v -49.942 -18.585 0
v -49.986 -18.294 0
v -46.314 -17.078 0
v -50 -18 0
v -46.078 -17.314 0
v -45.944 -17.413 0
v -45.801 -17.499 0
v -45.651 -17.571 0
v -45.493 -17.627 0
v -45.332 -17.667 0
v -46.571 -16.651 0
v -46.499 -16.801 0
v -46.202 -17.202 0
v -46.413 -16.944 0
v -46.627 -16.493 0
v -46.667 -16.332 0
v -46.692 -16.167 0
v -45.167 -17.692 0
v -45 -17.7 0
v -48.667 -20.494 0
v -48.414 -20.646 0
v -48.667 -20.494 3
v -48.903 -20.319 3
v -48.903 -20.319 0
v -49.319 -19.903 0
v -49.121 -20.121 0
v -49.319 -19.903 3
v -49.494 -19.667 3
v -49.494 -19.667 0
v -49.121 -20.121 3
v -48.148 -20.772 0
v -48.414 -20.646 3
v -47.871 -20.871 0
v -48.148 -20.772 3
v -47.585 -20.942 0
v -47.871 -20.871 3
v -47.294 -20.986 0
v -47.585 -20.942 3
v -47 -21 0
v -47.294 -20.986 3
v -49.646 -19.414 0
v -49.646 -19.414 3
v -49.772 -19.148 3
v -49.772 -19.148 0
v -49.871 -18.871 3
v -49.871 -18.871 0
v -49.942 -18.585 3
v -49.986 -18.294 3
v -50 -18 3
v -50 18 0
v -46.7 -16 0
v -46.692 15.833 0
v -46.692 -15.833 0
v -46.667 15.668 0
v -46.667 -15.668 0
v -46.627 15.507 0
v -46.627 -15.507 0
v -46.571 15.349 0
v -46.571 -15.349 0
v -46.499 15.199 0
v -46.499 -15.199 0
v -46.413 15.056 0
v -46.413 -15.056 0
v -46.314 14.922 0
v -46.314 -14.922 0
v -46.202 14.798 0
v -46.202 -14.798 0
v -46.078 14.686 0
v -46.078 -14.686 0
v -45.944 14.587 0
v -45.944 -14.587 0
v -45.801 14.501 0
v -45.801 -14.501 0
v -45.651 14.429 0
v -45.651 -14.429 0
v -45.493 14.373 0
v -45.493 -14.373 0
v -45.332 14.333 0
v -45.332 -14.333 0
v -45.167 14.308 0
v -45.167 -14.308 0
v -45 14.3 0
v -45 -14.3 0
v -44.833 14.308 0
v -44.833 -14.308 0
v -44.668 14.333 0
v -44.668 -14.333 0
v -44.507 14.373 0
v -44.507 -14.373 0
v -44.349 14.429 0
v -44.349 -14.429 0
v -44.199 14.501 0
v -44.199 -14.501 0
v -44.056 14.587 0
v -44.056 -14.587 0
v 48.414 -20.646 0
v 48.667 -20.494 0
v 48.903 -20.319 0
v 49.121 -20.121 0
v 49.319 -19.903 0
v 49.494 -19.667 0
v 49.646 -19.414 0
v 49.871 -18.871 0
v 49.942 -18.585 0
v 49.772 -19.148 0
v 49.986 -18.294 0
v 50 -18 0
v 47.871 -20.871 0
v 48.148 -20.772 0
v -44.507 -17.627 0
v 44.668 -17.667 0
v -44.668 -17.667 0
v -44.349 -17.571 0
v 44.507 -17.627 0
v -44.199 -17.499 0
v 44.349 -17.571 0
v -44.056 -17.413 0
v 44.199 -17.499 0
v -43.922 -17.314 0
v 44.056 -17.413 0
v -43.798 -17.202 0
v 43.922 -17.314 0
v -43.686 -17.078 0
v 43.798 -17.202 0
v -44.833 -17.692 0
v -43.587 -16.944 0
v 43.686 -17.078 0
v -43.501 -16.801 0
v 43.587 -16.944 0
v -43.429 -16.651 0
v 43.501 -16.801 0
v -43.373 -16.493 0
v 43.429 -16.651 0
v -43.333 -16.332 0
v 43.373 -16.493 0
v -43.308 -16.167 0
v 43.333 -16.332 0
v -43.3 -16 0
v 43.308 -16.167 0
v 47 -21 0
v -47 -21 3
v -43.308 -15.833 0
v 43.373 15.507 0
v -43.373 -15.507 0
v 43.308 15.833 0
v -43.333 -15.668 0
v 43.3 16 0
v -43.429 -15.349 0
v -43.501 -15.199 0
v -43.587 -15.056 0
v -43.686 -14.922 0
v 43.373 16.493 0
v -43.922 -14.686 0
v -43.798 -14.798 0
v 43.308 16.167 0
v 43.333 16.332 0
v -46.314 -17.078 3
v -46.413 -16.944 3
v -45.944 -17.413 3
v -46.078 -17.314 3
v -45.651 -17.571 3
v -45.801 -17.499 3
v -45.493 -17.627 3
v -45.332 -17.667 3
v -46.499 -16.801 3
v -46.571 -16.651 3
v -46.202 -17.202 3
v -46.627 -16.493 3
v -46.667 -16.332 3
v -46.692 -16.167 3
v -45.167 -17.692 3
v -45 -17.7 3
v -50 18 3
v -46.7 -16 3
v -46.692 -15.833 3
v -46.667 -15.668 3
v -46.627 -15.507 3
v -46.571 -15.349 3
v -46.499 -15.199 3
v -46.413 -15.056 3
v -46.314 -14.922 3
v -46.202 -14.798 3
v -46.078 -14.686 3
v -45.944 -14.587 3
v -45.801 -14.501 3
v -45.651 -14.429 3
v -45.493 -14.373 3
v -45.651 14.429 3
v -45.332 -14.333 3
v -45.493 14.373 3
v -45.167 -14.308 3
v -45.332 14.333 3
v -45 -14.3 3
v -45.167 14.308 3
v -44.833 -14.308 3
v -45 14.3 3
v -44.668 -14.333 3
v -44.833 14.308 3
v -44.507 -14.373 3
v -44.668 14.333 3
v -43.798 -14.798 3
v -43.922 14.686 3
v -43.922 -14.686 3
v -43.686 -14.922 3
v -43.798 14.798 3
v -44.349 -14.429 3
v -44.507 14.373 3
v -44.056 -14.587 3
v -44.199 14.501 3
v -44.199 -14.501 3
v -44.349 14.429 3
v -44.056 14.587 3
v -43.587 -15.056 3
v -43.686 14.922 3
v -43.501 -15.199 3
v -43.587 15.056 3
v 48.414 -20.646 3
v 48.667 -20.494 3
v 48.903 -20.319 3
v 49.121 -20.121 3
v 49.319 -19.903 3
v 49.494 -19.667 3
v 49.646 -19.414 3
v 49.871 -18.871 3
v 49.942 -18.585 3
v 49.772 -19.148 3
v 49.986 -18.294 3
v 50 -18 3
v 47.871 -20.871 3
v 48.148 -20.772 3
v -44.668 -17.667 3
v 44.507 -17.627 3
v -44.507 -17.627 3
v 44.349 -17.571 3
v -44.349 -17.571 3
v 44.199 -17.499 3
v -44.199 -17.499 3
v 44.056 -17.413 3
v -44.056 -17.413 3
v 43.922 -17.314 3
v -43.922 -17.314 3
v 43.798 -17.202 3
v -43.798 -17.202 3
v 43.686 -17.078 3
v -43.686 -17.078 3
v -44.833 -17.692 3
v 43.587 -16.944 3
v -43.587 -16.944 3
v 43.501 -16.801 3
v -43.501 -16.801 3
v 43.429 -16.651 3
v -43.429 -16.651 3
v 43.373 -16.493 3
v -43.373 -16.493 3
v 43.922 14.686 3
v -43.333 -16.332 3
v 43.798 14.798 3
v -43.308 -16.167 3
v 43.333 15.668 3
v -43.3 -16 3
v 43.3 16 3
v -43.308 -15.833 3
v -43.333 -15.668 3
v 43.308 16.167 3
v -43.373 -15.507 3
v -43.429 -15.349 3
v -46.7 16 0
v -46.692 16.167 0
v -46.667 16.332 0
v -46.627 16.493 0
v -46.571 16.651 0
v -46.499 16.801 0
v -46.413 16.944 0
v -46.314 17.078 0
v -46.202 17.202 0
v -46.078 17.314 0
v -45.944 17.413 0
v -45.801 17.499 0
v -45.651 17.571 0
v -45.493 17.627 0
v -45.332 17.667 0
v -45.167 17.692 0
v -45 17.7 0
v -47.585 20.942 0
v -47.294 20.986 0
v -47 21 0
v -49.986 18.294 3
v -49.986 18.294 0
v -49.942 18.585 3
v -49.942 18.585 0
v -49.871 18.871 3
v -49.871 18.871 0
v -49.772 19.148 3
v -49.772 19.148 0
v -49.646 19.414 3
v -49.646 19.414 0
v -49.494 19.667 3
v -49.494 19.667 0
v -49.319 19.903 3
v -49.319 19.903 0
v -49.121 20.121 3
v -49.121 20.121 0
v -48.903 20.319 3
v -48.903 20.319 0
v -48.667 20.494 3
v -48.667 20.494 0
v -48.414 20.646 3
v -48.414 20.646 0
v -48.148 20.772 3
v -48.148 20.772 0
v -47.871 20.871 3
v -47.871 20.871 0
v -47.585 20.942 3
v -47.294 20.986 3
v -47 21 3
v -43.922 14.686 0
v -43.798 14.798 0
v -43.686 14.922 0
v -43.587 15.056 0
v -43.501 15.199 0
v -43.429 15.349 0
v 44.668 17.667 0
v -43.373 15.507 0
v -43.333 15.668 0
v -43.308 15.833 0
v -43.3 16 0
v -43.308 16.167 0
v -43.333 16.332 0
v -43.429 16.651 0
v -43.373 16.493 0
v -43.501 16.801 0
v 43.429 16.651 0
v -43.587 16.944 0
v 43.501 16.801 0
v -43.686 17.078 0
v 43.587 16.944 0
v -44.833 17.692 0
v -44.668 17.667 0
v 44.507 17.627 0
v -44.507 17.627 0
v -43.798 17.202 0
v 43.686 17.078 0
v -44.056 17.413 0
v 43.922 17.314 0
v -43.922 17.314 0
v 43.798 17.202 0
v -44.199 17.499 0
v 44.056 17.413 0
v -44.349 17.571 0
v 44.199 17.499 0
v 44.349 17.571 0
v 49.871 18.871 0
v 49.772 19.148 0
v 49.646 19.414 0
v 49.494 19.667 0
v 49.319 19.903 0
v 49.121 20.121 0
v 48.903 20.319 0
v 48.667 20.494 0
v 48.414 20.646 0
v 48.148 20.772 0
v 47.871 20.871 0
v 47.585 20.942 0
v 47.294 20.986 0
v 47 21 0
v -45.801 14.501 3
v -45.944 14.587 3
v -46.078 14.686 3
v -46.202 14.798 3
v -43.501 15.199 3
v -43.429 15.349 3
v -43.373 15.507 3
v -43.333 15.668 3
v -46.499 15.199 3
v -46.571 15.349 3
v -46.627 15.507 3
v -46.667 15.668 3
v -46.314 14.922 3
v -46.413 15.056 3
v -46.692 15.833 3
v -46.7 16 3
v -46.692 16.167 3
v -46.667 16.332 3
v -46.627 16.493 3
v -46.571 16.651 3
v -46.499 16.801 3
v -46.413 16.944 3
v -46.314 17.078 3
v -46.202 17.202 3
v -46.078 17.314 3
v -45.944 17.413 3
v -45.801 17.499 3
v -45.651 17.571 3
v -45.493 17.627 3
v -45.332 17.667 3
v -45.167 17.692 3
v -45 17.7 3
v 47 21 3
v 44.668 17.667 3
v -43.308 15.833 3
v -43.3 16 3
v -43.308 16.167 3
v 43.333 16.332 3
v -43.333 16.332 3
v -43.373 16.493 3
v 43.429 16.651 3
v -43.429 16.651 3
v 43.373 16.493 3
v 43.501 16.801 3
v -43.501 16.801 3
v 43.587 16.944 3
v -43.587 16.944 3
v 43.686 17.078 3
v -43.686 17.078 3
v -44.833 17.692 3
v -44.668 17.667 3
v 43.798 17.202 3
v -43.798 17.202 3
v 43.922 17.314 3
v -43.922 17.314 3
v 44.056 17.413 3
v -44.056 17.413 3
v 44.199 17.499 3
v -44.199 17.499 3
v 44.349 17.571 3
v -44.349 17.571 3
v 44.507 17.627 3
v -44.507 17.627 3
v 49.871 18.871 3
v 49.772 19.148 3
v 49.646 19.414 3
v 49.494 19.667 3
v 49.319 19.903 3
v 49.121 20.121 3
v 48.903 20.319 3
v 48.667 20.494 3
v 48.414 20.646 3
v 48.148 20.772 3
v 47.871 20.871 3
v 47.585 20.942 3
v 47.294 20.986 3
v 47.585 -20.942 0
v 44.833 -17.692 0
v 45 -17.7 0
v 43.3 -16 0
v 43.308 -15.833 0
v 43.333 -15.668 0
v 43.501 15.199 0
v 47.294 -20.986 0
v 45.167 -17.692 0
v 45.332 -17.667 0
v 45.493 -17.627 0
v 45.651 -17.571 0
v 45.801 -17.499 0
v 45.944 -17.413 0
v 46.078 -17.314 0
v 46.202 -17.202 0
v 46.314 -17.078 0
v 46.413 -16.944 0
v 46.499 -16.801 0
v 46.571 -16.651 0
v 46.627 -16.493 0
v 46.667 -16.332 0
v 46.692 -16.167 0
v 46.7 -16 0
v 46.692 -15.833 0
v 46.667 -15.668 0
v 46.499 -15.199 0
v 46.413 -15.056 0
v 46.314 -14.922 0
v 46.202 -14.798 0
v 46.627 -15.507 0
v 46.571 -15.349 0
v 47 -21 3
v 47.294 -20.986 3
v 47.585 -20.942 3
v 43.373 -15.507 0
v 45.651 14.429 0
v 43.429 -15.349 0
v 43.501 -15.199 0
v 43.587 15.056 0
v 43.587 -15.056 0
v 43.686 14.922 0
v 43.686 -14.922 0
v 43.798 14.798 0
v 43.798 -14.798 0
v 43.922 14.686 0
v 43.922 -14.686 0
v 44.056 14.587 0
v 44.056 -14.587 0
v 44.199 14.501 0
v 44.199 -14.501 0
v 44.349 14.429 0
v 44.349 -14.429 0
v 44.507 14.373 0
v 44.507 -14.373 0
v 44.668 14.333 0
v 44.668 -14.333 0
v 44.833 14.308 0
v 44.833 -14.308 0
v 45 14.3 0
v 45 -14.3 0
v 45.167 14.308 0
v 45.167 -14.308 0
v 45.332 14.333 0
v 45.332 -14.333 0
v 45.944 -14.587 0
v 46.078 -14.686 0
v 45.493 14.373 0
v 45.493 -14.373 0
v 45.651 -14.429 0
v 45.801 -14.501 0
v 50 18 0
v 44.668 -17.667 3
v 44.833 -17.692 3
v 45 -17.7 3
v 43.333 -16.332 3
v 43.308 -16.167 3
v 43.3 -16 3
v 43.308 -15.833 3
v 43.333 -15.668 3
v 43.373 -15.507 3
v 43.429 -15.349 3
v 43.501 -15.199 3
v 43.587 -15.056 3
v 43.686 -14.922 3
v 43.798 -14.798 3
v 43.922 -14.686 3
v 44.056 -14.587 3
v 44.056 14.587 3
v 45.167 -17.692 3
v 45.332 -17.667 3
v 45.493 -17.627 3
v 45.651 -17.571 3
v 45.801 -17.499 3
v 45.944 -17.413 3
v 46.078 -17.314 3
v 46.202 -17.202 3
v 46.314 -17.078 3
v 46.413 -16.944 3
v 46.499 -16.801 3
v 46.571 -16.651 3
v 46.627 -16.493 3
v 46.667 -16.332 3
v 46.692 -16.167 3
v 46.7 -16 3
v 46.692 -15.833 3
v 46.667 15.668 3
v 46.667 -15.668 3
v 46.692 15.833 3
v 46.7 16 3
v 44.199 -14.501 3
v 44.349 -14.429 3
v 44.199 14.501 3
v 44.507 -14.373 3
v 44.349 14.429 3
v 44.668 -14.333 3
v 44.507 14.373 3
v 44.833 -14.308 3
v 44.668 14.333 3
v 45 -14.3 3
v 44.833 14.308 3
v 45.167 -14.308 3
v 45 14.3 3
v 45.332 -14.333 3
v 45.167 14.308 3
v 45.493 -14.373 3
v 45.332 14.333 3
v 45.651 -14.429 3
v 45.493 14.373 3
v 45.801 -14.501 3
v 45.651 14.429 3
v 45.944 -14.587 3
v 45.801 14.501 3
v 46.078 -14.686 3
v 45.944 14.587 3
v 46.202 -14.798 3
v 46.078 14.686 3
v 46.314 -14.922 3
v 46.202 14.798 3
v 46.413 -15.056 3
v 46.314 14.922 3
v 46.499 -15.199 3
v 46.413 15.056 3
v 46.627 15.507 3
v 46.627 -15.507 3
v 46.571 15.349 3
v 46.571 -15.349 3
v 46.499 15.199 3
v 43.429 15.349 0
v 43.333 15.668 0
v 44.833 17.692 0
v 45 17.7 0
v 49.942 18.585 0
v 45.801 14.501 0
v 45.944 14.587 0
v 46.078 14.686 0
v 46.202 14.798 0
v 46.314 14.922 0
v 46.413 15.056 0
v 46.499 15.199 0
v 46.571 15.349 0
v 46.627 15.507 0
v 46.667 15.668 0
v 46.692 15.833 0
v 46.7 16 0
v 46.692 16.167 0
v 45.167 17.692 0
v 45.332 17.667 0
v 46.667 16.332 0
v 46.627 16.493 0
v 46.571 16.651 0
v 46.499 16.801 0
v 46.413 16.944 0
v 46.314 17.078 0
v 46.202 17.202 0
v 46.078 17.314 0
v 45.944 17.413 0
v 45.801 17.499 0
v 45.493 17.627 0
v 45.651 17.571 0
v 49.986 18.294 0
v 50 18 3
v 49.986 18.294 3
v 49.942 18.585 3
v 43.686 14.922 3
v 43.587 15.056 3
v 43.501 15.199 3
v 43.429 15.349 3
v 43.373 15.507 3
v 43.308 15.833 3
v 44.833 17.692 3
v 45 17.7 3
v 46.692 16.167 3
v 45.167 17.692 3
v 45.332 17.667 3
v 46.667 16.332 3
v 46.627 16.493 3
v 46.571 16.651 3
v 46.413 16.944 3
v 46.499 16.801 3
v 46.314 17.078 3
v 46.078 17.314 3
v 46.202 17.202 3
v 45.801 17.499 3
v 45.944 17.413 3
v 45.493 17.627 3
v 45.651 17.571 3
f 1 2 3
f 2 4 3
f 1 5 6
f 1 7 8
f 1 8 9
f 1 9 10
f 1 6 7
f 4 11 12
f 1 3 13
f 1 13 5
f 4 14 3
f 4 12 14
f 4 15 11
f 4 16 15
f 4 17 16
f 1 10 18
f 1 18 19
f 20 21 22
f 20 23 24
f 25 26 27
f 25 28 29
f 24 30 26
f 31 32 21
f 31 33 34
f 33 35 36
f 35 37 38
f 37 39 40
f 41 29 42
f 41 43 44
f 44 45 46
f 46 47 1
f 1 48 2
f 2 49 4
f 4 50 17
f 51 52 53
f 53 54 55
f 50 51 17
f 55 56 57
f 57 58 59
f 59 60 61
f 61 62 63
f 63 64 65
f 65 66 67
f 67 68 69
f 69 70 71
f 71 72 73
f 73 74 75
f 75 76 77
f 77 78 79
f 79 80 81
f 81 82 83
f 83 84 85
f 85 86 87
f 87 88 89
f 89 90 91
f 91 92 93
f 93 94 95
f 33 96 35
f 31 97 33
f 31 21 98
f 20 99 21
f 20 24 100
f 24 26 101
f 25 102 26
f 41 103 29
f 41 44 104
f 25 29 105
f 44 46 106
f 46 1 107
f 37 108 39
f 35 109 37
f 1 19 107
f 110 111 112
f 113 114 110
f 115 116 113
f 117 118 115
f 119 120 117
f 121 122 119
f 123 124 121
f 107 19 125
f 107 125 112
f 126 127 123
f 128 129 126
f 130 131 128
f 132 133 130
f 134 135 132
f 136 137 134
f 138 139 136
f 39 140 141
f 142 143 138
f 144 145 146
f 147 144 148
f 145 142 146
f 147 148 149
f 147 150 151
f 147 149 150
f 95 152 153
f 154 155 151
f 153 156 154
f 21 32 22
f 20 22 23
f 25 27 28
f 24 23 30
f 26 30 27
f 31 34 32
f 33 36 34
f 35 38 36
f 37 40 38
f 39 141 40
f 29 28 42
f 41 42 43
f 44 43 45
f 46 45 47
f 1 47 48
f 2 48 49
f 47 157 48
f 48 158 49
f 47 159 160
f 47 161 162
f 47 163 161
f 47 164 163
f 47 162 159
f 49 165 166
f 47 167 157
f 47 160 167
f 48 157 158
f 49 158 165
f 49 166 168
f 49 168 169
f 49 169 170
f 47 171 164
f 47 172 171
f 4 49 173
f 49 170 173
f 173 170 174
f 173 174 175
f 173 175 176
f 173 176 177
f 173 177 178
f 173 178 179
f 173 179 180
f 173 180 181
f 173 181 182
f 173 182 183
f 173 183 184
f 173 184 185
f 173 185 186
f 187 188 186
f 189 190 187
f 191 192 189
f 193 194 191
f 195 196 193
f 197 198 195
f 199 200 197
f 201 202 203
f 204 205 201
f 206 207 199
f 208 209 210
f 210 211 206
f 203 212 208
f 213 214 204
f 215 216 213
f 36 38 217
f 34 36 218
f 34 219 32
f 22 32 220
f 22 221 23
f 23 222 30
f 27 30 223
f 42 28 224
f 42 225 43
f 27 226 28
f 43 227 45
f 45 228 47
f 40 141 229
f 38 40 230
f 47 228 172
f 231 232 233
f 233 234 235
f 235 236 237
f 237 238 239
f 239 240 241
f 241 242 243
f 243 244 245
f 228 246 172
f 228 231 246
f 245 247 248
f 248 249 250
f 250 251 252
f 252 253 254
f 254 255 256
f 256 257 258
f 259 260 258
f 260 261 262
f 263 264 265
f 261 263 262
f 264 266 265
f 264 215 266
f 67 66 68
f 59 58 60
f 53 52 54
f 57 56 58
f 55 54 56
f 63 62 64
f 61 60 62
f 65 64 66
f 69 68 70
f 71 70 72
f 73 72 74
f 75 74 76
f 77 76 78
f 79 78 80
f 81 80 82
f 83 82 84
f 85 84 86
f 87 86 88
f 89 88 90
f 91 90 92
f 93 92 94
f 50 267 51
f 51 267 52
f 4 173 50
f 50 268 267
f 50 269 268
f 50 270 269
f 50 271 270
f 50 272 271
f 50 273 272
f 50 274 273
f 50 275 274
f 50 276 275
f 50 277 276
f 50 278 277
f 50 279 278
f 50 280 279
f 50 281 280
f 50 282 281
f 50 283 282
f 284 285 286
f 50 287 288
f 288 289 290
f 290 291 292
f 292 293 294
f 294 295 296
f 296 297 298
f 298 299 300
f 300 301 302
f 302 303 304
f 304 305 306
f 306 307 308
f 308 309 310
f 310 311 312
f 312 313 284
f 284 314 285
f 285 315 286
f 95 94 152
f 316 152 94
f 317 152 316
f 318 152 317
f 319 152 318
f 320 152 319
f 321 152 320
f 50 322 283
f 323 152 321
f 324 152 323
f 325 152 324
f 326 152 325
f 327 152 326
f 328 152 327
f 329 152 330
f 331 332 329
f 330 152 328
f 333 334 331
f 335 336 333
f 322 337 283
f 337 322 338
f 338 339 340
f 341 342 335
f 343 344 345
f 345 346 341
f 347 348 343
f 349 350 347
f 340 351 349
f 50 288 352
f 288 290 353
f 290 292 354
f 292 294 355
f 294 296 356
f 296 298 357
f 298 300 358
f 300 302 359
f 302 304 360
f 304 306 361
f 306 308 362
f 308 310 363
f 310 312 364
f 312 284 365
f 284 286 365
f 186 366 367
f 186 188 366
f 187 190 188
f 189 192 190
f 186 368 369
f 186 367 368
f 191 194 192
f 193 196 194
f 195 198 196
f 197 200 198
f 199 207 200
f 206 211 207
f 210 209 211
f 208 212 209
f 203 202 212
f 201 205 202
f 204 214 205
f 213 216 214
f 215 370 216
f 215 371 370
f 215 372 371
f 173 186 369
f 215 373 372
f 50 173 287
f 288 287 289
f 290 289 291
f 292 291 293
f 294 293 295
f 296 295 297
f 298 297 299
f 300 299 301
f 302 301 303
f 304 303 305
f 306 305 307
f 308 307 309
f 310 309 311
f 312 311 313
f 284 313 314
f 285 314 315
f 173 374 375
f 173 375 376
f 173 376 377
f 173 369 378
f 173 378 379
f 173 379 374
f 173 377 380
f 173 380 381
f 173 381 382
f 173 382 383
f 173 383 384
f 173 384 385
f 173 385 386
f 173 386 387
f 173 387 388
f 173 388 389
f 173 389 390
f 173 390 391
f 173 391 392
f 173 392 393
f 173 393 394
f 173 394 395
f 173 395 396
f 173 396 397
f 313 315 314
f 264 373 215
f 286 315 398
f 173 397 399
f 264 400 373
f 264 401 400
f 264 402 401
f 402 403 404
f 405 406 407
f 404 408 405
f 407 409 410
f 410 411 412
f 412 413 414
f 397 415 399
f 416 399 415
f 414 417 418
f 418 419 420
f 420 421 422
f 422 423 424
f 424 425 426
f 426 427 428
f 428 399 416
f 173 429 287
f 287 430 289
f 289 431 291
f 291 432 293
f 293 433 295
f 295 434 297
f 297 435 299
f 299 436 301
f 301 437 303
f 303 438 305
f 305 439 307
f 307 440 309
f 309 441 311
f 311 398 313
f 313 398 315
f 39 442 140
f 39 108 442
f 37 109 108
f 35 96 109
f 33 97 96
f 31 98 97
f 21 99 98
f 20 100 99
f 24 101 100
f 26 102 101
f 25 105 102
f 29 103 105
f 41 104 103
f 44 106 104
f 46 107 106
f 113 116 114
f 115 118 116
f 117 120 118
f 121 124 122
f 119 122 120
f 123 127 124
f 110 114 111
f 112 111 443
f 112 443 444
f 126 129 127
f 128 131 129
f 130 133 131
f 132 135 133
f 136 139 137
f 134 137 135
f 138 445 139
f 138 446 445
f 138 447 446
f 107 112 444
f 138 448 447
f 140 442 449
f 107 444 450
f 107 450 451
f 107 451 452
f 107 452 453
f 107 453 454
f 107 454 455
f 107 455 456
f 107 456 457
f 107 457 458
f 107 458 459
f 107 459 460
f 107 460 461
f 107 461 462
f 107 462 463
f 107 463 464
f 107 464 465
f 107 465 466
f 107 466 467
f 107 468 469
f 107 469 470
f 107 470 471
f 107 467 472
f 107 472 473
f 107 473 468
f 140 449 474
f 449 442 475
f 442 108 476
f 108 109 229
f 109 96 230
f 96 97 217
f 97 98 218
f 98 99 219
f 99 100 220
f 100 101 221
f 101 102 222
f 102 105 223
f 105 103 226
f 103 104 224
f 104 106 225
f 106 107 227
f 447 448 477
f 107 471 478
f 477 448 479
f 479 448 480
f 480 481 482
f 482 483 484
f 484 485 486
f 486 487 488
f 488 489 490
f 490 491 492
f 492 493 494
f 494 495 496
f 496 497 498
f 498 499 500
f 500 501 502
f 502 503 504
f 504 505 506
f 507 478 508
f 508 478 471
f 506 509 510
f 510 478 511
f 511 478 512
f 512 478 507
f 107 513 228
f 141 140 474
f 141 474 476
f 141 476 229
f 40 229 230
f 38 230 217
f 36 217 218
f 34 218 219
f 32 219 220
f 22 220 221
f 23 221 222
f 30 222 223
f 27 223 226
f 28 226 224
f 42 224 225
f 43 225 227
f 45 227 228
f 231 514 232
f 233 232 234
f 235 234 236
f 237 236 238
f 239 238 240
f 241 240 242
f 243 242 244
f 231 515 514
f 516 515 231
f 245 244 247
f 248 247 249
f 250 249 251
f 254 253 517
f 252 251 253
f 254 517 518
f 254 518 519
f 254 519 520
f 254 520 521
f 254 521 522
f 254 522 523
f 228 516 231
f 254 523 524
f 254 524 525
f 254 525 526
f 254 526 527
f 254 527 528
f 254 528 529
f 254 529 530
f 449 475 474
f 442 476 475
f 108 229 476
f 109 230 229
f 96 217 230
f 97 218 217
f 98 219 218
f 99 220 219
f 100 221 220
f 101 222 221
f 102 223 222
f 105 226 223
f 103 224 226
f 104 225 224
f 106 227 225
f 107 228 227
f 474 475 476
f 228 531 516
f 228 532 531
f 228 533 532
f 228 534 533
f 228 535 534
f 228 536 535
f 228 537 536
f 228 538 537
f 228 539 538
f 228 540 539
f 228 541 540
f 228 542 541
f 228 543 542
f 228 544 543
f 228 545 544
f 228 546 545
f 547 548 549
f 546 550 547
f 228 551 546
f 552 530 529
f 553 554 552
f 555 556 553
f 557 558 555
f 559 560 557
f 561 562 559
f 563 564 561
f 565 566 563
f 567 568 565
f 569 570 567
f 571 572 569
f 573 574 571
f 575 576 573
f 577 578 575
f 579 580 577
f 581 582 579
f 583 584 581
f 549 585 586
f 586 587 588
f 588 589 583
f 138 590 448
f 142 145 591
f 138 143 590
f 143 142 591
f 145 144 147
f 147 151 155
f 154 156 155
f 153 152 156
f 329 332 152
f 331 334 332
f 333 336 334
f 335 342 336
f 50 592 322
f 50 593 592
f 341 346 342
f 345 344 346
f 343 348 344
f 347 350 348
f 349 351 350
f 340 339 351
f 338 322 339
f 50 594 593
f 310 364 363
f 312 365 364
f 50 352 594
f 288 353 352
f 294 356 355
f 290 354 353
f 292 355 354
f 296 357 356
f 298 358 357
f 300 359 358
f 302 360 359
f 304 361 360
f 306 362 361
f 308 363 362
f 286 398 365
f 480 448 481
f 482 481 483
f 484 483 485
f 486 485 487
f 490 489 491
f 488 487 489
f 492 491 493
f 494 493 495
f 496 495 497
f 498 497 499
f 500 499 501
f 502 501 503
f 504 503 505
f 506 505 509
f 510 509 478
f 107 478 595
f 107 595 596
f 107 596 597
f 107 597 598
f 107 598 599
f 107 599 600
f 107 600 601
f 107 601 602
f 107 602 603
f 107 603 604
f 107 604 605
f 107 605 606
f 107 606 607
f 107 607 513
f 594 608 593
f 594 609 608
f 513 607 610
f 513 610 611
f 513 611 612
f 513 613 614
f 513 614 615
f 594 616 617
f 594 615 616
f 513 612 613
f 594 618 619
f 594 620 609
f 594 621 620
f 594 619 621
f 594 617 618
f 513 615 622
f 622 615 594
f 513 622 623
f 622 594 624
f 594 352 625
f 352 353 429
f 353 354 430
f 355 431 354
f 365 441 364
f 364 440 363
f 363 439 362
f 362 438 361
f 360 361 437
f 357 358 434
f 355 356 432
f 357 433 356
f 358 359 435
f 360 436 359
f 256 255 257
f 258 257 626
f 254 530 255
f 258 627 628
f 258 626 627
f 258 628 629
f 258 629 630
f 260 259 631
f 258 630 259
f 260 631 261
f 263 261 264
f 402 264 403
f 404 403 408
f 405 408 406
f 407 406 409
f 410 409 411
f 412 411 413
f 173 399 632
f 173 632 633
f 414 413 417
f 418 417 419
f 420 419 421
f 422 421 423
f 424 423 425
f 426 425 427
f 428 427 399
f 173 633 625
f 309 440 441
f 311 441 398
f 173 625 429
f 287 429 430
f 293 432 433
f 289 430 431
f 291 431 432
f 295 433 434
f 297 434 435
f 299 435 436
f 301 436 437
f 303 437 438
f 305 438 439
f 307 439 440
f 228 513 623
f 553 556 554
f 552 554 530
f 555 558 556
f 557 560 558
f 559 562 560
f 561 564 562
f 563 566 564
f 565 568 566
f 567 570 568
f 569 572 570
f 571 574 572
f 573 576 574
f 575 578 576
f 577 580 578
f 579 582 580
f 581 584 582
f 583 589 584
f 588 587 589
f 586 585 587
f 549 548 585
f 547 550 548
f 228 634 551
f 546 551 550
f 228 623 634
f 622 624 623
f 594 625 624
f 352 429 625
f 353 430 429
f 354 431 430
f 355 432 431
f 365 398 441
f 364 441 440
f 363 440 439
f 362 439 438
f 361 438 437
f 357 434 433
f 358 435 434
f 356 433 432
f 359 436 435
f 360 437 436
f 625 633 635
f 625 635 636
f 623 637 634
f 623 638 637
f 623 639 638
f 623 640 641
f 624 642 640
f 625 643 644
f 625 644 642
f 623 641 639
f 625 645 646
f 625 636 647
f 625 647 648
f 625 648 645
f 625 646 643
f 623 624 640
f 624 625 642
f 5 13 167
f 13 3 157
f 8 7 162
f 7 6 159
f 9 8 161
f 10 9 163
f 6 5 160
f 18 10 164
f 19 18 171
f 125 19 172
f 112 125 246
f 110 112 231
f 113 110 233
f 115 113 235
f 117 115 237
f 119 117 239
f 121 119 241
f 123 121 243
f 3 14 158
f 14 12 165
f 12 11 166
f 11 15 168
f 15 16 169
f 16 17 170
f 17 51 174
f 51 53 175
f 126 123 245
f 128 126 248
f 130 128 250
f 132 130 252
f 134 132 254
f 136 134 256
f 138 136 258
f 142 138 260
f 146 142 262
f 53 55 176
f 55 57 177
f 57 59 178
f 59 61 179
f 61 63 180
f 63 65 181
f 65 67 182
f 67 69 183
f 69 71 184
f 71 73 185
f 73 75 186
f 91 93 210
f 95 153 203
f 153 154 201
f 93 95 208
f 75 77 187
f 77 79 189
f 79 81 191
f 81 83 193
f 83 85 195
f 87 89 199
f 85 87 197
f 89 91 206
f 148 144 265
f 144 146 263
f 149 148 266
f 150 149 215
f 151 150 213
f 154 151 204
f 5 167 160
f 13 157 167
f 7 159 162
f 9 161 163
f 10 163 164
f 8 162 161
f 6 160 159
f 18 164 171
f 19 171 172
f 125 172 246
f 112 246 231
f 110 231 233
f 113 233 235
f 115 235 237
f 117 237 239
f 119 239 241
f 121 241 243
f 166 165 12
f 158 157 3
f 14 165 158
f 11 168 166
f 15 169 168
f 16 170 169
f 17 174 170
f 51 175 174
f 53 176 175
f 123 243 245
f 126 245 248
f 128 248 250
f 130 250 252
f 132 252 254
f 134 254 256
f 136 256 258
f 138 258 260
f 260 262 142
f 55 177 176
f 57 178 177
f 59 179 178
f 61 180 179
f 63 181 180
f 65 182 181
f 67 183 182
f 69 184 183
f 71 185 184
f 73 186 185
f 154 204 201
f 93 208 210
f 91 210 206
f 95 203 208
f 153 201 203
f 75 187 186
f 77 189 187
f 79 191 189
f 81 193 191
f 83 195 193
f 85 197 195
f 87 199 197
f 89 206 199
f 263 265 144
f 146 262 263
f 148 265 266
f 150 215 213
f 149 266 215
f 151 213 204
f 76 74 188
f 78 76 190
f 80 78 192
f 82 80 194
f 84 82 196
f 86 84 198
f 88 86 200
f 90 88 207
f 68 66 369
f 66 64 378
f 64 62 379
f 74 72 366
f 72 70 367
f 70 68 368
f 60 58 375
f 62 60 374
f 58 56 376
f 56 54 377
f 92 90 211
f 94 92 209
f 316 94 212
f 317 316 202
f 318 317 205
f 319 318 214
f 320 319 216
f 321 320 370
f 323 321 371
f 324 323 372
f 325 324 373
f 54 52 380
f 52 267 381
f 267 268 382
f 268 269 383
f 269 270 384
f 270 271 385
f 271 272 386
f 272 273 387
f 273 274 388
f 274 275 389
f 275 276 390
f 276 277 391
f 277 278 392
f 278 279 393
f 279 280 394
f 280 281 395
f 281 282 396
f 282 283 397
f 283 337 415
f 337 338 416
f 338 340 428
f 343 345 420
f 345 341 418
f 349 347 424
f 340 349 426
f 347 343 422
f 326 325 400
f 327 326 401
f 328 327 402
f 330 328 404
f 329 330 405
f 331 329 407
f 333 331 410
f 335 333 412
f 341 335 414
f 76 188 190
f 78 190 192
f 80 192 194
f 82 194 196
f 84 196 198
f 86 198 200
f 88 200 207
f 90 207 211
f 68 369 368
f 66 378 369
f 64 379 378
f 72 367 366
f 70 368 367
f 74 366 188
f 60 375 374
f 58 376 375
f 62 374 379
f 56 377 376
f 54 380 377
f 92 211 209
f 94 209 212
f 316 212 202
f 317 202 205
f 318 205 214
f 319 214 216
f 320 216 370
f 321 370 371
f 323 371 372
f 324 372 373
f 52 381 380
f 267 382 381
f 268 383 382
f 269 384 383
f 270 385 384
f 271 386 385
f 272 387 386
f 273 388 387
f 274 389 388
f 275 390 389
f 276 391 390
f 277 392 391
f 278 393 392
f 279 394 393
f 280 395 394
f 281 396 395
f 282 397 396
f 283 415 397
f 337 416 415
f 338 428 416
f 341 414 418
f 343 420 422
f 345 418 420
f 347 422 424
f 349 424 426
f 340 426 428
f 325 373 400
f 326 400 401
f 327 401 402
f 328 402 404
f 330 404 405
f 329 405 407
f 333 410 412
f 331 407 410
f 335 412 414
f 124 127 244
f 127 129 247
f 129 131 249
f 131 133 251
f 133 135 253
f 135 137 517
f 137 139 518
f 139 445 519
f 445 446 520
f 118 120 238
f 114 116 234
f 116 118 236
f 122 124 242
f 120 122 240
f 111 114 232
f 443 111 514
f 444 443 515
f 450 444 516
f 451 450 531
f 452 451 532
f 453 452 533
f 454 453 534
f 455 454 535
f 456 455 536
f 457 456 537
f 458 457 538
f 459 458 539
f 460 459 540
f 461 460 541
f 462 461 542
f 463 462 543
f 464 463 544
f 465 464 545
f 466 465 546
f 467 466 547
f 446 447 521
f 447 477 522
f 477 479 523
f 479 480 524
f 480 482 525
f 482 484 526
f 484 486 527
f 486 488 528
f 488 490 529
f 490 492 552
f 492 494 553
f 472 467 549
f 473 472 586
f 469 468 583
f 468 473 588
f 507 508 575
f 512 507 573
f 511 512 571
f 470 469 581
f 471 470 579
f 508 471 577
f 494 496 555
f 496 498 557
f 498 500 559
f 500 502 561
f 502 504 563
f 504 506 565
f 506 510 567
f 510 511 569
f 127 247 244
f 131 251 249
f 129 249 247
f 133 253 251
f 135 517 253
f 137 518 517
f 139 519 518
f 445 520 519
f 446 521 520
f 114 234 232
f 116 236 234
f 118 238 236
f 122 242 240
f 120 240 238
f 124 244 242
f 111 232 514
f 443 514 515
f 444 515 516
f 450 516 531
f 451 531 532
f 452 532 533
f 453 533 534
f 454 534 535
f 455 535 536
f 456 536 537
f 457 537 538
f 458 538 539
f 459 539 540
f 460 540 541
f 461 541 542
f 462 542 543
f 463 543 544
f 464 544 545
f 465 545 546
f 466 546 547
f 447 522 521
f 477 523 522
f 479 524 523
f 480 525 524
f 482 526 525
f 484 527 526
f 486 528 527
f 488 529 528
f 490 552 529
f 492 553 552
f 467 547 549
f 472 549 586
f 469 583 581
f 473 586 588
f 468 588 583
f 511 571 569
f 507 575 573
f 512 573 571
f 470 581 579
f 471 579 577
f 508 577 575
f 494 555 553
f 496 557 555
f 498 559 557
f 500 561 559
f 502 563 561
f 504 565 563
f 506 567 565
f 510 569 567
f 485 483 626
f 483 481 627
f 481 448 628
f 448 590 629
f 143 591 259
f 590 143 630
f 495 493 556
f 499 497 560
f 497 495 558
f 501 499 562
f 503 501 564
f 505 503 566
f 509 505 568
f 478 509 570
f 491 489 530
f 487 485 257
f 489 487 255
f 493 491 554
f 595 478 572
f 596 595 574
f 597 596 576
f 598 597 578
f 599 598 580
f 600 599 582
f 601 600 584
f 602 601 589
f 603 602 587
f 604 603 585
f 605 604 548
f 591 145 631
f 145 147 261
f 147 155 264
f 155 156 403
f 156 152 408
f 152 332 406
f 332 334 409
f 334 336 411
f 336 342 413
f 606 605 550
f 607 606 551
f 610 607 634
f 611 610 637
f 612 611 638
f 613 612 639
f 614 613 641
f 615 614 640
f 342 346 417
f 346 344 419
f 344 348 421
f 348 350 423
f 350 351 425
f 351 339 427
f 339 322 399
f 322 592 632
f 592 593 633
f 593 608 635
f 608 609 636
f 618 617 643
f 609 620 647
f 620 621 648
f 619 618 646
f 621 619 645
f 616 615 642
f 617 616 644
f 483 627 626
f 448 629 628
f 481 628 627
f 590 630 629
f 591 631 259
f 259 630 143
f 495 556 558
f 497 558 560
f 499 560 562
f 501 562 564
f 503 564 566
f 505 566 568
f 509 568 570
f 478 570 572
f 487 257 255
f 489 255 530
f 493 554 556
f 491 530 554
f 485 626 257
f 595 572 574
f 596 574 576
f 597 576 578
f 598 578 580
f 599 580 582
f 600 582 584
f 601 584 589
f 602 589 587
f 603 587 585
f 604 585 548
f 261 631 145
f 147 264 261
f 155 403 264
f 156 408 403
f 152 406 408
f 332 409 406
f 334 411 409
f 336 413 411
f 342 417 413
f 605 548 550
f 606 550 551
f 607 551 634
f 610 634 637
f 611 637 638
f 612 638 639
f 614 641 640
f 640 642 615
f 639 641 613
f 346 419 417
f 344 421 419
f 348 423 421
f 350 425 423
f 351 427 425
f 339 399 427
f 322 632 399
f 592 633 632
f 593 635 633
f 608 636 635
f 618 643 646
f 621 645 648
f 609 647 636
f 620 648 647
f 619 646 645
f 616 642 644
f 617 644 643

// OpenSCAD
// Screwless v2; mm; generated by generate_screwless_v2.py
difference(){difference(){difference(){difference(){linear_extrude(height=3)polygon(points=[[50.0, 18.0], [49.98555418001659, 18.294051420988684], [49.94235584120969, 18.585270966048384], [49.870821007196625, 18.870854031763386], [49.77163859753386, 19.14805029709527], [49.64576379304506, 19.414190210477994], [49.49440883690764, 19.666710699058807], [49.31903136008821, 19.903179852490936], [49.121320343559645, 20.121320343559642], [48.903179852490936, 20.31903136008821], [48.666710699058804, 20.494408836907635], [48.41419021047799, 20.645763793045067], [48.14805029709527, 20.771638597533858], [47.870854031763386, 20.870821007196625], [47.585270966048384, 20.94235584120969], [47.29405142098868, 20.985554180016592], [47.0, 21.0], [-47.0, 21.0], [-47.29405142098868, 20.985554180016592], [-47.585270966048384, 20.94235584120969], [-47.870854031763386, 20.870821007196625], [-48.14805029709527, 20.771638597533858], [-48.41419021047799, 20.645763793045067], [-48.666710699058804, 20.494408836907635], [-48.903179852490936, 20.31903136008821], [-49.121320343559645, 20.121320343559642], [-49.31903136008821, 19.903179852490936], [-49.49440883690764, 19.666710699058807], [-49.64576379304506, 19.414190210477994], [-49.77163859753386, 19.14805029709527], [-49.870821007196625, 18.870854031763386], [-49.94235584120969, 18.585270966048384], [-49.98555418001659, 18.294051420988684], [-50.0, 18.0], [-50.0, -18.0], [-49.98555418001659, -18.29405142098868], [-49.94235584120969, -18.585270966048384], [-49.870821007196625, -18.870854031763386], [-49.77163859753386, -19.14805029709527], [-49.64576379304506, -19.414190210477994], [-49.49440883690764, -19.666710699058807], [-49.31903136008821, -19.903179852490936], [-49.121320343559645, -20.121320343559642], [-48.903179852490936, -20.31903136008821], [-48.666710699058804, -20.494408836907635], [-48.41419021047799, -20.645763793045063], [-48.14805029709527, -20.77163859753386], [-47.870854031763386, -20.870821007196625], [-47.585270966048384, -20.94235584120969], [-47.29405142098868, -20.985554180016592], [-47.0, -21.0], [47.0, -21.0], [47.29405142098868, -20.985554180016592], [47.585270966048384, -20.94235584120969], [47.870854031763386, -20.870821007196625], [48.14805029709527, -20.771638597533858], [48.41419021047799, -20.645763793045067], [48.666710699058804, -20.49440883690764], [48.903179852490936, -20.31903136008821], [49.121320343559645, -20.121320343559642], [49.31903136008821, -19.903179852490936], [49.49440883690764, -19.666710699058807], [49.64576379304506, -19.414190210477994], [49.77163859753386, -19.148050297095267], [49.870821007196625, -18.870854031763386], [49.94235584120969, -18.585270966048387], [49.98555418001659, -18.29405142098868], [50.0, -18.0]]);translate([-45,-16,-1]){cylinder(h=5,r=1.7,$fn=64);}}translate([-45,16,-1]){cylinder(h=5,r=1.7,$fn=64);}}translate([45,-16,-1]){cylinder(h=5,r=1.7,$fn=64);}}translate([45,16,-1]){cylinder(h=5,r=1.7,$fn=64);}}
